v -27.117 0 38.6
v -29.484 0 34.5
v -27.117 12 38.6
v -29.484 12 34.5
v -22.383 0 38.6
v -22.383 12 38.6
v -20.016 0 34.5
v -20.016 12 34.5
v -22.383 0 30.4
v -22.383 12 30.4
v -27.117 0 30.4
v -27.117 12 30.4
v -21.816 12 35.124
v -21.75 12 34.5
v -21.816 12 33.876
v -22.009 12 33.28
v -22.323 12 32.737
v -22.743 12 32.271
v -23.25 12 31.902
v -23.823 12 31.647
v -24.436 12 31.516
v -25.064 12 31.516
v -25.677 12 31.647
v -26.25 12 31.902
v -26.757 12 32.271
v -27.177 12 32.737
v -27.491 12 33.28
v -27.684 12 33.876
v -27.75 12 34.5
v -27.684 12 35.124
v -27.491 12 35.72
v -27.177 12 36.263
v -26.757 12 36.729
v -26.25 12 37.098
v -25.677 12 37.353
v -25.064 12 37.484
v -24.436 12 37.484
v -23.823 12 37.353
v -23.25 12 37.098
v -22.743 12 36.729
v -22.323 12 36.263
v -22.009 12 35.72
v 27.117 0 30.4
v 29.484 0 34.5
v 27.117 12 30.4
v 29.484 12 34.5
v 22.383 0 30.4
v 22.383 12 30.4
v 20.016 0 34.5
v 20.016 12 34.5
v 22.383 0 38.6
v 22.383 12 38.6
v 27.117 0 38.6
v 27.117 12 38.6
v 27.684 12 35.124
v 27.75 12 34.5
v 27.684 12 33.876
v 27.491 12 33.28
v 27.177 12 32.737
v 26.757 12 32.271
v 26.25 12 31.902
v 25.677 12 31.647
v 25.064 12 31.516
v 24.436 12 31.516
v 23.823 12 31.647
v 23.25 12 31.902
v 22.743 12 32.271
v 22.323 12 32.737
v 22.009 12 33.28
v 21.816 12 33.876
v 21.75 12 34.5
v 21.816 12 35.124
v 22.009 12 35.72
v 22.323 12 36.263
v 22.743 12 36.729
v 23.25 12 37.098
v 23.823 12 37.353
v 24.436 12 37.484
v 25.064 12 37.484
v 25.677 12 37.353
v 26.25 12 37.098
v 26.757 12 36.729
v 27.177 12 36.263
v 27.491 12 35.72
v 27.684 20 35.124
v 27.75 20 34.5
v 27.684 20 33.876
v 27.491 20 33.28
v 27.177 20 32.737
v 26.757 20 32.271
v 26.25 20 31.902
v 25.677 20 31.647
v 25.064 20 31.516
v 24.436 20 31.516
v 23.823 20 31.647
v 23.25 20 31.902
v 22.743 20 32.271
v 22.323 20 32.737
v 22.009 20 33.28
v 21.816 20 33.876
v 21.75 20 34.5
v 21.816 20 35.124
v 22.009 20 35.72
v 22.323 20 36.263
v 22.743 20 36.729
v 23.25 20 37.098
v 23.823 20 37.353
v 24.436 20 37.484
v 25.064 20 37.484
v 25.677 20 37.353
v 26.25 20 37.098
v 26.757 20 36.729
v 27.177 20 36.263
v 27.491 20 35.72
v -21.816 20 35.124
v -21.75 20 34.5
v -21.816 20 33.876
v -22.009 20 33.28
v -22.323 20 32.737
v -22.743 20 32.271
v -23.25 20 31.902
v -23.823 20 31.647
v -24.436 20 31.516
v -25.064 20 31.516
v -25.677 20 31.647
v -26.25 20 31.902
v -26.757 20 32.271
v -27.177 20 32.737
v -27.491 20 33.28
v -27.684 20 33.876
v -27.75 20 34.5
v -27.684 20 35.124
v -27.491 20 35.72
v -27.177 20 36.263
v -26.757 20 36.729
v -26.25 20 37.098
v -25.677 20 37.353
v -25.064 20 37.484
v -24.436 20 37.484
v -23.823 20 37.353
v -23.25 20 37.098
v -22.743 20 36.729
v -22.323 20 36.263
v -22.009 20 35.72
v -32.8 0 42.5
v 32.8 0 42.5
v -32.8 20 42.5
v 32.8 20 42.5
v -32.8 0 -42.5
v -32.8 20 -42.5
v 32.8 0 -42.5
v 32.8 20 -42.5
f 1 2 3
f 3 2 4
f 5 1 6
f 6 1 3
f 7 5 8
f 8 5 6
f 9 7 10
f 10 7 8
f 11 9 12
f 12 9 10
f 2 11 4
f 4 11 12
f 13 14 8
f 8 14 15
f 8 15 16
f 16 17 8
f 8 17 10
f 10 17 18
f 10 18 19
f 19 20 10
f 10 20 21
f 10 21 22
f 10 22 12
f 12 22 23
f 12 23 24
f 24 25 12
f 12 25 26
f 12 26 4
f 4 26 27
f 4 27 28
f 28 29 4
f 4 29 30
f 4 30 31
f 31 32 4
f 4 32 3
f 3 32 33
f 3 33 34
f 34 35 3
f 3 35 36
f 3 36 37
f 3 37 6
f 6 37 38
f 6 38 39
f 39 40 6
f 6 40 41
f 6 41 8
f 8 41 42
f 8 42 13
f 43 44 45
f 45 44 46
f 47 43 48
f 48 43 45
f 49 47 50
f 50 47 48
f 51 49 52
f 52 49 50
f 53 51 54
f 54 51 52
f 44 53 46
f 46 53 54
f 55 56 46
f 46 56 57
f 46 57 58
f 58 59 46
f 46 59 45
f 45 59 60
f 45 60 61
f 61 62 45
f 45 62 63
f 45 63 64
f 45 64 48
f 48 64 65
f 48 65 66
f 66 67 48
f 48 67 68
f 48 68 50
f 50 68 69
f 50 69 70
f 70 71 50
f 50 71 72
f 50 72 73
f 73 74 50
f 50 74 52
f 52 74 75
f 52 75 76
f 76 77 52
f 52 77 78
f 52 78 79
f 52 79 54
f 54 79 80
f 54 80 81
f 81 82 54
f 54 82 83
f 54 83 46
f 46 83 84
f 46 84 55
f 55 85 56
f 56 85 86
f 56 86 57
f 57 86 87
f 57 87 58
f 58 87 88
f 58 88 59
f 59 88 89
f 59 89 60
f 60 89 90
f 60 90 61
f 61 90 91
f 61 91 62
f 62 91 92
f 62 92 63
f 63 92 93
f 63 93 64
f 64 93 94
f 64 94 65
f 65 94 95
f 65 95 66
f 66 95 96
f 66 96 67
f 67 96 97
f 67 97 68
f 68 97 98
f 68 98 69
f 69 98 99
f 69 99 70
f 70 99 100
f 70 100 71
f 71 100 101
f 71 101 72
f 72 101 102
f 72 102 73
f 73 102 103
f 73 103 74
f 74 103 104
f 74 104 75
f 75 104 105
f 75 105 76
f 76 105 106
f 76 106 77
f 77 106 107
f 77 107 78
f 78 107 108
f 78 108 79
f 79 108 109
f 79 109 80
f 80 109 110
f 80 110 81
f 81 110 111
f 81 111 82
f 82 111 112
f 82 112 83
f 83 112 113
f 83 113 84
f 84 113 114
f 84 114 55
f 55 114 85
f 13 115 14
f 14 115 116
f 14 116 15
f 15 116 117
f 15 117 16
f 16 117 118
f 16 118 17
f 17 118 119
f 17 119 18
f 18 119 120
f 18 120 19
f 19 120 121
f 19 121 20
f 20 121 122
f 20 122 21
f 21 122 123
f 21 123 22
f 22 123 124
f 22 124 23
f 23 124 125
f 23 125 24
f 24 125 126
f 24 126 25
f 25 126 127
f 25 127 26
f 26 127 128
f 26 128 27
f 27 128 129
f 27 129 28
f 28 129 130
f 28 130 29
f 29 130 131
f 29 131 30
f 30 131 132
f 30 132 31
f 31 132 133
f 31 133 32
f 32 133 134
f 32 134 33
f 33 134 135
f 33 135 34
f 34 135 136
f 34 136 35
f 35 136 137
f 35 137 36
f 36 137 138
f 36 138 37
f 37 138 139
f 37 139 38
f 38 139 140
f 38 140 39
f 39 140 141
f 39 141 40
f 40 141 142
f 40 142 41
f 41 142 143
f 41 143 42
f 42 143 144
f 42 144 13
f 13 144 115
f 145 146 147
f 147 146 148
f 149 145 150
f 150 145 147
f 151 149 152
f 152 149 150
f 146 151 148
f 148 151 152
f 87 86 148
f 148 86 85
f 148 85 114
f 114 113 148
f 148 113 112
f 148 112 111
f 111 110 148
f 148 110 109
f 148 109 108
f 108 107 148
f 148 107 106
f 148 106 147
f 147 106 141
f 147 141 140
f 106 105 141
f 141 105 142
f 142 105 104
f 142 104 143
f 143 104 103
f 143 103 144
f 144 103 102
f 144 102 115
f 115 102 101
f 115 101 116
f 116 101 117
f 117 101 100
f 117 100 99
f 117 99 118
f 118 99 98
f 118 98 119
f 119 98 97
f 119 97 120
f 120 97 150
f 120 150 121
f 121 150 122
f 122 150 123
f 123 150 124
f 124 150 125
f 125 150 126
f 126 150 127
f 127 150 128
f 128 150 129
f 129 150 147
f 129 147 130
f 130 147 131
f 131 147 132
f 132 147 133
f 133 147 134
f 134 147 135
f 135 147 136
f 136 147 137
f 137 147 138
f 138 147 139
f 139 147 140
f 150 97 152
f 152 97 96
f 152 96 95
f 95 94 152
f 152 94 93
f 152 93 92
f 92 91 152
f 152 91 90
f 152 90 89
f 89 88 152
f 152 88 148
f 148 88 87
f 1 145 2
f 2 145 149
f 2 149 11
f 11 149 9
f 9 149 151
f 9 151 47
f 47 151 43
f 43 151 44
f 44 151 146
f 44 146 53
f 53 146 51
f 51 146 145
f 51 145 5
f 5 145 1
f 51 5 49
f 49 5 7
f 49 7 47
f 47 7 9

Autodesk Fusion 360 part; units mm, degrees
sketch "Sketch1" plane through (0, 0, 0) normal (0, 1, 0) x (1, 0, 0)
  line L0 (32.8, 42.5) -> (-32.8, 42.5)
  line L1 (-32.8, 42.5) -> (-32.8, -42.5)
  line L2 (-32.8, -42.5) -> (32.8, -42.5)
  line L3 (32.8, -42.5) -> (32.8, 42.5)
  line L4 (32.8, 42.5) -> (-32.8, -42.5) construction
  line L5 (-32.8, 42.5) -> (32.8, -42.5) construction
  dimension "d1" = 65.6
  dimension "d2" = 85
extrude "Extrude1" add sketch "Sketch1" along normal blind 20
sketch "Sketch2" plane through (0, 20, 0) normal (0, 1, 0) x (-1, 0, 0)
  line L0 (-32.8, 42.5) -> (-32.8, -42.5)
  line L1 (-32.8, -42.5) -> (32.8, -42.5)
  line L2 (32.8, -42.5) -> (32.8, 42.5)
  line L3 (32.8, 42.5) -> (-32.8, 42.5)
  line L4 (0, 42.5) -> (0, 34.5) construction
  line L5 (0, 34.5) -> (-24.75, 34.5) construction
  line L6 (0, 34.5) -> (24.75, 34.5) construction
  circle A0 centre (24.75, 34.5) radius 3
  circle A1 centre (-24.75, 34.5) radius 3
  dimension "d5" = 8
  dimension "d6" = 24.75
  dimension "d7" = 24.75
  dimension "d8" = 6
  dimension "d9" = 6
extrude "Extrude2" cut sketch "Sketch2" against normal up to surface (20 mm away) contours A0 | A1
ref_plane "WorkPlane1" through (0, 12, 0) normal (0, 1, 0) x (0, 0, 1)
sketch "Sketch3" plane through (0, 12, 0) normal (0, 1, 0) x (1, 0, 0)
  line L0 (20.0157, -34.5) -> (22.3829, -38.6)
  line L1 (22.3829, -38.6) -> (27.1171, -38.6)
  line L2 (27.1171, -38.6) -> (29.4843, -34.5)
  line L3 (29.4843, -34.5) -> (27.1171, -30.4)
  line L4 (27.1171, -30.4) -> (22.3829, -30.4)
  line L5 (22.3829, -30.4) -> (20.0157, -34.5)
  circle A0 centre (24.75, -34.5) radius 3
  line L6 (-20.0157, -34.5) -> (-22.3829, -30.4)
  line L7 (-22.3829, -30.4) -> (-27.1171, -30.4)
  line L8 (-27.1171, -30.4) -> (-29.4843, -34.5)
  line L9 (-29.4843, -34.5) -> (-27.1171, -38.6)
  line L10 (-27.1171, -38.6) -> (-22.3829, -38.6)
  line L11 (-22.3829, -38.6) -> (-20.0157, -34.5)
  circle A1 centre (-24.75, -34.5) radius 3
  point P0 (24.75, -34.5)
  point P1 (-24.75, -34.5)
  dimension "d13" = 4.1
  dimension "d14" = 4.1
extrude "Extrude3" cut sketch "Sketch3" against normal up to surface (12 mm away) contours L0 L1 L2 L3 L4 L5 | A0 | L6 L7 L8 L9 L10 L11 | A1
equation "d6 = ( 49.5 / 2 ) * 1 mm"
equation "d7 = ( 49.5 / 2 ) * 1 mm"
equation "d13 = ( 8.2 / 2 ) * 1 mm"
equation "d14 = ( 8.2 / 2 ) * 1 mm"
